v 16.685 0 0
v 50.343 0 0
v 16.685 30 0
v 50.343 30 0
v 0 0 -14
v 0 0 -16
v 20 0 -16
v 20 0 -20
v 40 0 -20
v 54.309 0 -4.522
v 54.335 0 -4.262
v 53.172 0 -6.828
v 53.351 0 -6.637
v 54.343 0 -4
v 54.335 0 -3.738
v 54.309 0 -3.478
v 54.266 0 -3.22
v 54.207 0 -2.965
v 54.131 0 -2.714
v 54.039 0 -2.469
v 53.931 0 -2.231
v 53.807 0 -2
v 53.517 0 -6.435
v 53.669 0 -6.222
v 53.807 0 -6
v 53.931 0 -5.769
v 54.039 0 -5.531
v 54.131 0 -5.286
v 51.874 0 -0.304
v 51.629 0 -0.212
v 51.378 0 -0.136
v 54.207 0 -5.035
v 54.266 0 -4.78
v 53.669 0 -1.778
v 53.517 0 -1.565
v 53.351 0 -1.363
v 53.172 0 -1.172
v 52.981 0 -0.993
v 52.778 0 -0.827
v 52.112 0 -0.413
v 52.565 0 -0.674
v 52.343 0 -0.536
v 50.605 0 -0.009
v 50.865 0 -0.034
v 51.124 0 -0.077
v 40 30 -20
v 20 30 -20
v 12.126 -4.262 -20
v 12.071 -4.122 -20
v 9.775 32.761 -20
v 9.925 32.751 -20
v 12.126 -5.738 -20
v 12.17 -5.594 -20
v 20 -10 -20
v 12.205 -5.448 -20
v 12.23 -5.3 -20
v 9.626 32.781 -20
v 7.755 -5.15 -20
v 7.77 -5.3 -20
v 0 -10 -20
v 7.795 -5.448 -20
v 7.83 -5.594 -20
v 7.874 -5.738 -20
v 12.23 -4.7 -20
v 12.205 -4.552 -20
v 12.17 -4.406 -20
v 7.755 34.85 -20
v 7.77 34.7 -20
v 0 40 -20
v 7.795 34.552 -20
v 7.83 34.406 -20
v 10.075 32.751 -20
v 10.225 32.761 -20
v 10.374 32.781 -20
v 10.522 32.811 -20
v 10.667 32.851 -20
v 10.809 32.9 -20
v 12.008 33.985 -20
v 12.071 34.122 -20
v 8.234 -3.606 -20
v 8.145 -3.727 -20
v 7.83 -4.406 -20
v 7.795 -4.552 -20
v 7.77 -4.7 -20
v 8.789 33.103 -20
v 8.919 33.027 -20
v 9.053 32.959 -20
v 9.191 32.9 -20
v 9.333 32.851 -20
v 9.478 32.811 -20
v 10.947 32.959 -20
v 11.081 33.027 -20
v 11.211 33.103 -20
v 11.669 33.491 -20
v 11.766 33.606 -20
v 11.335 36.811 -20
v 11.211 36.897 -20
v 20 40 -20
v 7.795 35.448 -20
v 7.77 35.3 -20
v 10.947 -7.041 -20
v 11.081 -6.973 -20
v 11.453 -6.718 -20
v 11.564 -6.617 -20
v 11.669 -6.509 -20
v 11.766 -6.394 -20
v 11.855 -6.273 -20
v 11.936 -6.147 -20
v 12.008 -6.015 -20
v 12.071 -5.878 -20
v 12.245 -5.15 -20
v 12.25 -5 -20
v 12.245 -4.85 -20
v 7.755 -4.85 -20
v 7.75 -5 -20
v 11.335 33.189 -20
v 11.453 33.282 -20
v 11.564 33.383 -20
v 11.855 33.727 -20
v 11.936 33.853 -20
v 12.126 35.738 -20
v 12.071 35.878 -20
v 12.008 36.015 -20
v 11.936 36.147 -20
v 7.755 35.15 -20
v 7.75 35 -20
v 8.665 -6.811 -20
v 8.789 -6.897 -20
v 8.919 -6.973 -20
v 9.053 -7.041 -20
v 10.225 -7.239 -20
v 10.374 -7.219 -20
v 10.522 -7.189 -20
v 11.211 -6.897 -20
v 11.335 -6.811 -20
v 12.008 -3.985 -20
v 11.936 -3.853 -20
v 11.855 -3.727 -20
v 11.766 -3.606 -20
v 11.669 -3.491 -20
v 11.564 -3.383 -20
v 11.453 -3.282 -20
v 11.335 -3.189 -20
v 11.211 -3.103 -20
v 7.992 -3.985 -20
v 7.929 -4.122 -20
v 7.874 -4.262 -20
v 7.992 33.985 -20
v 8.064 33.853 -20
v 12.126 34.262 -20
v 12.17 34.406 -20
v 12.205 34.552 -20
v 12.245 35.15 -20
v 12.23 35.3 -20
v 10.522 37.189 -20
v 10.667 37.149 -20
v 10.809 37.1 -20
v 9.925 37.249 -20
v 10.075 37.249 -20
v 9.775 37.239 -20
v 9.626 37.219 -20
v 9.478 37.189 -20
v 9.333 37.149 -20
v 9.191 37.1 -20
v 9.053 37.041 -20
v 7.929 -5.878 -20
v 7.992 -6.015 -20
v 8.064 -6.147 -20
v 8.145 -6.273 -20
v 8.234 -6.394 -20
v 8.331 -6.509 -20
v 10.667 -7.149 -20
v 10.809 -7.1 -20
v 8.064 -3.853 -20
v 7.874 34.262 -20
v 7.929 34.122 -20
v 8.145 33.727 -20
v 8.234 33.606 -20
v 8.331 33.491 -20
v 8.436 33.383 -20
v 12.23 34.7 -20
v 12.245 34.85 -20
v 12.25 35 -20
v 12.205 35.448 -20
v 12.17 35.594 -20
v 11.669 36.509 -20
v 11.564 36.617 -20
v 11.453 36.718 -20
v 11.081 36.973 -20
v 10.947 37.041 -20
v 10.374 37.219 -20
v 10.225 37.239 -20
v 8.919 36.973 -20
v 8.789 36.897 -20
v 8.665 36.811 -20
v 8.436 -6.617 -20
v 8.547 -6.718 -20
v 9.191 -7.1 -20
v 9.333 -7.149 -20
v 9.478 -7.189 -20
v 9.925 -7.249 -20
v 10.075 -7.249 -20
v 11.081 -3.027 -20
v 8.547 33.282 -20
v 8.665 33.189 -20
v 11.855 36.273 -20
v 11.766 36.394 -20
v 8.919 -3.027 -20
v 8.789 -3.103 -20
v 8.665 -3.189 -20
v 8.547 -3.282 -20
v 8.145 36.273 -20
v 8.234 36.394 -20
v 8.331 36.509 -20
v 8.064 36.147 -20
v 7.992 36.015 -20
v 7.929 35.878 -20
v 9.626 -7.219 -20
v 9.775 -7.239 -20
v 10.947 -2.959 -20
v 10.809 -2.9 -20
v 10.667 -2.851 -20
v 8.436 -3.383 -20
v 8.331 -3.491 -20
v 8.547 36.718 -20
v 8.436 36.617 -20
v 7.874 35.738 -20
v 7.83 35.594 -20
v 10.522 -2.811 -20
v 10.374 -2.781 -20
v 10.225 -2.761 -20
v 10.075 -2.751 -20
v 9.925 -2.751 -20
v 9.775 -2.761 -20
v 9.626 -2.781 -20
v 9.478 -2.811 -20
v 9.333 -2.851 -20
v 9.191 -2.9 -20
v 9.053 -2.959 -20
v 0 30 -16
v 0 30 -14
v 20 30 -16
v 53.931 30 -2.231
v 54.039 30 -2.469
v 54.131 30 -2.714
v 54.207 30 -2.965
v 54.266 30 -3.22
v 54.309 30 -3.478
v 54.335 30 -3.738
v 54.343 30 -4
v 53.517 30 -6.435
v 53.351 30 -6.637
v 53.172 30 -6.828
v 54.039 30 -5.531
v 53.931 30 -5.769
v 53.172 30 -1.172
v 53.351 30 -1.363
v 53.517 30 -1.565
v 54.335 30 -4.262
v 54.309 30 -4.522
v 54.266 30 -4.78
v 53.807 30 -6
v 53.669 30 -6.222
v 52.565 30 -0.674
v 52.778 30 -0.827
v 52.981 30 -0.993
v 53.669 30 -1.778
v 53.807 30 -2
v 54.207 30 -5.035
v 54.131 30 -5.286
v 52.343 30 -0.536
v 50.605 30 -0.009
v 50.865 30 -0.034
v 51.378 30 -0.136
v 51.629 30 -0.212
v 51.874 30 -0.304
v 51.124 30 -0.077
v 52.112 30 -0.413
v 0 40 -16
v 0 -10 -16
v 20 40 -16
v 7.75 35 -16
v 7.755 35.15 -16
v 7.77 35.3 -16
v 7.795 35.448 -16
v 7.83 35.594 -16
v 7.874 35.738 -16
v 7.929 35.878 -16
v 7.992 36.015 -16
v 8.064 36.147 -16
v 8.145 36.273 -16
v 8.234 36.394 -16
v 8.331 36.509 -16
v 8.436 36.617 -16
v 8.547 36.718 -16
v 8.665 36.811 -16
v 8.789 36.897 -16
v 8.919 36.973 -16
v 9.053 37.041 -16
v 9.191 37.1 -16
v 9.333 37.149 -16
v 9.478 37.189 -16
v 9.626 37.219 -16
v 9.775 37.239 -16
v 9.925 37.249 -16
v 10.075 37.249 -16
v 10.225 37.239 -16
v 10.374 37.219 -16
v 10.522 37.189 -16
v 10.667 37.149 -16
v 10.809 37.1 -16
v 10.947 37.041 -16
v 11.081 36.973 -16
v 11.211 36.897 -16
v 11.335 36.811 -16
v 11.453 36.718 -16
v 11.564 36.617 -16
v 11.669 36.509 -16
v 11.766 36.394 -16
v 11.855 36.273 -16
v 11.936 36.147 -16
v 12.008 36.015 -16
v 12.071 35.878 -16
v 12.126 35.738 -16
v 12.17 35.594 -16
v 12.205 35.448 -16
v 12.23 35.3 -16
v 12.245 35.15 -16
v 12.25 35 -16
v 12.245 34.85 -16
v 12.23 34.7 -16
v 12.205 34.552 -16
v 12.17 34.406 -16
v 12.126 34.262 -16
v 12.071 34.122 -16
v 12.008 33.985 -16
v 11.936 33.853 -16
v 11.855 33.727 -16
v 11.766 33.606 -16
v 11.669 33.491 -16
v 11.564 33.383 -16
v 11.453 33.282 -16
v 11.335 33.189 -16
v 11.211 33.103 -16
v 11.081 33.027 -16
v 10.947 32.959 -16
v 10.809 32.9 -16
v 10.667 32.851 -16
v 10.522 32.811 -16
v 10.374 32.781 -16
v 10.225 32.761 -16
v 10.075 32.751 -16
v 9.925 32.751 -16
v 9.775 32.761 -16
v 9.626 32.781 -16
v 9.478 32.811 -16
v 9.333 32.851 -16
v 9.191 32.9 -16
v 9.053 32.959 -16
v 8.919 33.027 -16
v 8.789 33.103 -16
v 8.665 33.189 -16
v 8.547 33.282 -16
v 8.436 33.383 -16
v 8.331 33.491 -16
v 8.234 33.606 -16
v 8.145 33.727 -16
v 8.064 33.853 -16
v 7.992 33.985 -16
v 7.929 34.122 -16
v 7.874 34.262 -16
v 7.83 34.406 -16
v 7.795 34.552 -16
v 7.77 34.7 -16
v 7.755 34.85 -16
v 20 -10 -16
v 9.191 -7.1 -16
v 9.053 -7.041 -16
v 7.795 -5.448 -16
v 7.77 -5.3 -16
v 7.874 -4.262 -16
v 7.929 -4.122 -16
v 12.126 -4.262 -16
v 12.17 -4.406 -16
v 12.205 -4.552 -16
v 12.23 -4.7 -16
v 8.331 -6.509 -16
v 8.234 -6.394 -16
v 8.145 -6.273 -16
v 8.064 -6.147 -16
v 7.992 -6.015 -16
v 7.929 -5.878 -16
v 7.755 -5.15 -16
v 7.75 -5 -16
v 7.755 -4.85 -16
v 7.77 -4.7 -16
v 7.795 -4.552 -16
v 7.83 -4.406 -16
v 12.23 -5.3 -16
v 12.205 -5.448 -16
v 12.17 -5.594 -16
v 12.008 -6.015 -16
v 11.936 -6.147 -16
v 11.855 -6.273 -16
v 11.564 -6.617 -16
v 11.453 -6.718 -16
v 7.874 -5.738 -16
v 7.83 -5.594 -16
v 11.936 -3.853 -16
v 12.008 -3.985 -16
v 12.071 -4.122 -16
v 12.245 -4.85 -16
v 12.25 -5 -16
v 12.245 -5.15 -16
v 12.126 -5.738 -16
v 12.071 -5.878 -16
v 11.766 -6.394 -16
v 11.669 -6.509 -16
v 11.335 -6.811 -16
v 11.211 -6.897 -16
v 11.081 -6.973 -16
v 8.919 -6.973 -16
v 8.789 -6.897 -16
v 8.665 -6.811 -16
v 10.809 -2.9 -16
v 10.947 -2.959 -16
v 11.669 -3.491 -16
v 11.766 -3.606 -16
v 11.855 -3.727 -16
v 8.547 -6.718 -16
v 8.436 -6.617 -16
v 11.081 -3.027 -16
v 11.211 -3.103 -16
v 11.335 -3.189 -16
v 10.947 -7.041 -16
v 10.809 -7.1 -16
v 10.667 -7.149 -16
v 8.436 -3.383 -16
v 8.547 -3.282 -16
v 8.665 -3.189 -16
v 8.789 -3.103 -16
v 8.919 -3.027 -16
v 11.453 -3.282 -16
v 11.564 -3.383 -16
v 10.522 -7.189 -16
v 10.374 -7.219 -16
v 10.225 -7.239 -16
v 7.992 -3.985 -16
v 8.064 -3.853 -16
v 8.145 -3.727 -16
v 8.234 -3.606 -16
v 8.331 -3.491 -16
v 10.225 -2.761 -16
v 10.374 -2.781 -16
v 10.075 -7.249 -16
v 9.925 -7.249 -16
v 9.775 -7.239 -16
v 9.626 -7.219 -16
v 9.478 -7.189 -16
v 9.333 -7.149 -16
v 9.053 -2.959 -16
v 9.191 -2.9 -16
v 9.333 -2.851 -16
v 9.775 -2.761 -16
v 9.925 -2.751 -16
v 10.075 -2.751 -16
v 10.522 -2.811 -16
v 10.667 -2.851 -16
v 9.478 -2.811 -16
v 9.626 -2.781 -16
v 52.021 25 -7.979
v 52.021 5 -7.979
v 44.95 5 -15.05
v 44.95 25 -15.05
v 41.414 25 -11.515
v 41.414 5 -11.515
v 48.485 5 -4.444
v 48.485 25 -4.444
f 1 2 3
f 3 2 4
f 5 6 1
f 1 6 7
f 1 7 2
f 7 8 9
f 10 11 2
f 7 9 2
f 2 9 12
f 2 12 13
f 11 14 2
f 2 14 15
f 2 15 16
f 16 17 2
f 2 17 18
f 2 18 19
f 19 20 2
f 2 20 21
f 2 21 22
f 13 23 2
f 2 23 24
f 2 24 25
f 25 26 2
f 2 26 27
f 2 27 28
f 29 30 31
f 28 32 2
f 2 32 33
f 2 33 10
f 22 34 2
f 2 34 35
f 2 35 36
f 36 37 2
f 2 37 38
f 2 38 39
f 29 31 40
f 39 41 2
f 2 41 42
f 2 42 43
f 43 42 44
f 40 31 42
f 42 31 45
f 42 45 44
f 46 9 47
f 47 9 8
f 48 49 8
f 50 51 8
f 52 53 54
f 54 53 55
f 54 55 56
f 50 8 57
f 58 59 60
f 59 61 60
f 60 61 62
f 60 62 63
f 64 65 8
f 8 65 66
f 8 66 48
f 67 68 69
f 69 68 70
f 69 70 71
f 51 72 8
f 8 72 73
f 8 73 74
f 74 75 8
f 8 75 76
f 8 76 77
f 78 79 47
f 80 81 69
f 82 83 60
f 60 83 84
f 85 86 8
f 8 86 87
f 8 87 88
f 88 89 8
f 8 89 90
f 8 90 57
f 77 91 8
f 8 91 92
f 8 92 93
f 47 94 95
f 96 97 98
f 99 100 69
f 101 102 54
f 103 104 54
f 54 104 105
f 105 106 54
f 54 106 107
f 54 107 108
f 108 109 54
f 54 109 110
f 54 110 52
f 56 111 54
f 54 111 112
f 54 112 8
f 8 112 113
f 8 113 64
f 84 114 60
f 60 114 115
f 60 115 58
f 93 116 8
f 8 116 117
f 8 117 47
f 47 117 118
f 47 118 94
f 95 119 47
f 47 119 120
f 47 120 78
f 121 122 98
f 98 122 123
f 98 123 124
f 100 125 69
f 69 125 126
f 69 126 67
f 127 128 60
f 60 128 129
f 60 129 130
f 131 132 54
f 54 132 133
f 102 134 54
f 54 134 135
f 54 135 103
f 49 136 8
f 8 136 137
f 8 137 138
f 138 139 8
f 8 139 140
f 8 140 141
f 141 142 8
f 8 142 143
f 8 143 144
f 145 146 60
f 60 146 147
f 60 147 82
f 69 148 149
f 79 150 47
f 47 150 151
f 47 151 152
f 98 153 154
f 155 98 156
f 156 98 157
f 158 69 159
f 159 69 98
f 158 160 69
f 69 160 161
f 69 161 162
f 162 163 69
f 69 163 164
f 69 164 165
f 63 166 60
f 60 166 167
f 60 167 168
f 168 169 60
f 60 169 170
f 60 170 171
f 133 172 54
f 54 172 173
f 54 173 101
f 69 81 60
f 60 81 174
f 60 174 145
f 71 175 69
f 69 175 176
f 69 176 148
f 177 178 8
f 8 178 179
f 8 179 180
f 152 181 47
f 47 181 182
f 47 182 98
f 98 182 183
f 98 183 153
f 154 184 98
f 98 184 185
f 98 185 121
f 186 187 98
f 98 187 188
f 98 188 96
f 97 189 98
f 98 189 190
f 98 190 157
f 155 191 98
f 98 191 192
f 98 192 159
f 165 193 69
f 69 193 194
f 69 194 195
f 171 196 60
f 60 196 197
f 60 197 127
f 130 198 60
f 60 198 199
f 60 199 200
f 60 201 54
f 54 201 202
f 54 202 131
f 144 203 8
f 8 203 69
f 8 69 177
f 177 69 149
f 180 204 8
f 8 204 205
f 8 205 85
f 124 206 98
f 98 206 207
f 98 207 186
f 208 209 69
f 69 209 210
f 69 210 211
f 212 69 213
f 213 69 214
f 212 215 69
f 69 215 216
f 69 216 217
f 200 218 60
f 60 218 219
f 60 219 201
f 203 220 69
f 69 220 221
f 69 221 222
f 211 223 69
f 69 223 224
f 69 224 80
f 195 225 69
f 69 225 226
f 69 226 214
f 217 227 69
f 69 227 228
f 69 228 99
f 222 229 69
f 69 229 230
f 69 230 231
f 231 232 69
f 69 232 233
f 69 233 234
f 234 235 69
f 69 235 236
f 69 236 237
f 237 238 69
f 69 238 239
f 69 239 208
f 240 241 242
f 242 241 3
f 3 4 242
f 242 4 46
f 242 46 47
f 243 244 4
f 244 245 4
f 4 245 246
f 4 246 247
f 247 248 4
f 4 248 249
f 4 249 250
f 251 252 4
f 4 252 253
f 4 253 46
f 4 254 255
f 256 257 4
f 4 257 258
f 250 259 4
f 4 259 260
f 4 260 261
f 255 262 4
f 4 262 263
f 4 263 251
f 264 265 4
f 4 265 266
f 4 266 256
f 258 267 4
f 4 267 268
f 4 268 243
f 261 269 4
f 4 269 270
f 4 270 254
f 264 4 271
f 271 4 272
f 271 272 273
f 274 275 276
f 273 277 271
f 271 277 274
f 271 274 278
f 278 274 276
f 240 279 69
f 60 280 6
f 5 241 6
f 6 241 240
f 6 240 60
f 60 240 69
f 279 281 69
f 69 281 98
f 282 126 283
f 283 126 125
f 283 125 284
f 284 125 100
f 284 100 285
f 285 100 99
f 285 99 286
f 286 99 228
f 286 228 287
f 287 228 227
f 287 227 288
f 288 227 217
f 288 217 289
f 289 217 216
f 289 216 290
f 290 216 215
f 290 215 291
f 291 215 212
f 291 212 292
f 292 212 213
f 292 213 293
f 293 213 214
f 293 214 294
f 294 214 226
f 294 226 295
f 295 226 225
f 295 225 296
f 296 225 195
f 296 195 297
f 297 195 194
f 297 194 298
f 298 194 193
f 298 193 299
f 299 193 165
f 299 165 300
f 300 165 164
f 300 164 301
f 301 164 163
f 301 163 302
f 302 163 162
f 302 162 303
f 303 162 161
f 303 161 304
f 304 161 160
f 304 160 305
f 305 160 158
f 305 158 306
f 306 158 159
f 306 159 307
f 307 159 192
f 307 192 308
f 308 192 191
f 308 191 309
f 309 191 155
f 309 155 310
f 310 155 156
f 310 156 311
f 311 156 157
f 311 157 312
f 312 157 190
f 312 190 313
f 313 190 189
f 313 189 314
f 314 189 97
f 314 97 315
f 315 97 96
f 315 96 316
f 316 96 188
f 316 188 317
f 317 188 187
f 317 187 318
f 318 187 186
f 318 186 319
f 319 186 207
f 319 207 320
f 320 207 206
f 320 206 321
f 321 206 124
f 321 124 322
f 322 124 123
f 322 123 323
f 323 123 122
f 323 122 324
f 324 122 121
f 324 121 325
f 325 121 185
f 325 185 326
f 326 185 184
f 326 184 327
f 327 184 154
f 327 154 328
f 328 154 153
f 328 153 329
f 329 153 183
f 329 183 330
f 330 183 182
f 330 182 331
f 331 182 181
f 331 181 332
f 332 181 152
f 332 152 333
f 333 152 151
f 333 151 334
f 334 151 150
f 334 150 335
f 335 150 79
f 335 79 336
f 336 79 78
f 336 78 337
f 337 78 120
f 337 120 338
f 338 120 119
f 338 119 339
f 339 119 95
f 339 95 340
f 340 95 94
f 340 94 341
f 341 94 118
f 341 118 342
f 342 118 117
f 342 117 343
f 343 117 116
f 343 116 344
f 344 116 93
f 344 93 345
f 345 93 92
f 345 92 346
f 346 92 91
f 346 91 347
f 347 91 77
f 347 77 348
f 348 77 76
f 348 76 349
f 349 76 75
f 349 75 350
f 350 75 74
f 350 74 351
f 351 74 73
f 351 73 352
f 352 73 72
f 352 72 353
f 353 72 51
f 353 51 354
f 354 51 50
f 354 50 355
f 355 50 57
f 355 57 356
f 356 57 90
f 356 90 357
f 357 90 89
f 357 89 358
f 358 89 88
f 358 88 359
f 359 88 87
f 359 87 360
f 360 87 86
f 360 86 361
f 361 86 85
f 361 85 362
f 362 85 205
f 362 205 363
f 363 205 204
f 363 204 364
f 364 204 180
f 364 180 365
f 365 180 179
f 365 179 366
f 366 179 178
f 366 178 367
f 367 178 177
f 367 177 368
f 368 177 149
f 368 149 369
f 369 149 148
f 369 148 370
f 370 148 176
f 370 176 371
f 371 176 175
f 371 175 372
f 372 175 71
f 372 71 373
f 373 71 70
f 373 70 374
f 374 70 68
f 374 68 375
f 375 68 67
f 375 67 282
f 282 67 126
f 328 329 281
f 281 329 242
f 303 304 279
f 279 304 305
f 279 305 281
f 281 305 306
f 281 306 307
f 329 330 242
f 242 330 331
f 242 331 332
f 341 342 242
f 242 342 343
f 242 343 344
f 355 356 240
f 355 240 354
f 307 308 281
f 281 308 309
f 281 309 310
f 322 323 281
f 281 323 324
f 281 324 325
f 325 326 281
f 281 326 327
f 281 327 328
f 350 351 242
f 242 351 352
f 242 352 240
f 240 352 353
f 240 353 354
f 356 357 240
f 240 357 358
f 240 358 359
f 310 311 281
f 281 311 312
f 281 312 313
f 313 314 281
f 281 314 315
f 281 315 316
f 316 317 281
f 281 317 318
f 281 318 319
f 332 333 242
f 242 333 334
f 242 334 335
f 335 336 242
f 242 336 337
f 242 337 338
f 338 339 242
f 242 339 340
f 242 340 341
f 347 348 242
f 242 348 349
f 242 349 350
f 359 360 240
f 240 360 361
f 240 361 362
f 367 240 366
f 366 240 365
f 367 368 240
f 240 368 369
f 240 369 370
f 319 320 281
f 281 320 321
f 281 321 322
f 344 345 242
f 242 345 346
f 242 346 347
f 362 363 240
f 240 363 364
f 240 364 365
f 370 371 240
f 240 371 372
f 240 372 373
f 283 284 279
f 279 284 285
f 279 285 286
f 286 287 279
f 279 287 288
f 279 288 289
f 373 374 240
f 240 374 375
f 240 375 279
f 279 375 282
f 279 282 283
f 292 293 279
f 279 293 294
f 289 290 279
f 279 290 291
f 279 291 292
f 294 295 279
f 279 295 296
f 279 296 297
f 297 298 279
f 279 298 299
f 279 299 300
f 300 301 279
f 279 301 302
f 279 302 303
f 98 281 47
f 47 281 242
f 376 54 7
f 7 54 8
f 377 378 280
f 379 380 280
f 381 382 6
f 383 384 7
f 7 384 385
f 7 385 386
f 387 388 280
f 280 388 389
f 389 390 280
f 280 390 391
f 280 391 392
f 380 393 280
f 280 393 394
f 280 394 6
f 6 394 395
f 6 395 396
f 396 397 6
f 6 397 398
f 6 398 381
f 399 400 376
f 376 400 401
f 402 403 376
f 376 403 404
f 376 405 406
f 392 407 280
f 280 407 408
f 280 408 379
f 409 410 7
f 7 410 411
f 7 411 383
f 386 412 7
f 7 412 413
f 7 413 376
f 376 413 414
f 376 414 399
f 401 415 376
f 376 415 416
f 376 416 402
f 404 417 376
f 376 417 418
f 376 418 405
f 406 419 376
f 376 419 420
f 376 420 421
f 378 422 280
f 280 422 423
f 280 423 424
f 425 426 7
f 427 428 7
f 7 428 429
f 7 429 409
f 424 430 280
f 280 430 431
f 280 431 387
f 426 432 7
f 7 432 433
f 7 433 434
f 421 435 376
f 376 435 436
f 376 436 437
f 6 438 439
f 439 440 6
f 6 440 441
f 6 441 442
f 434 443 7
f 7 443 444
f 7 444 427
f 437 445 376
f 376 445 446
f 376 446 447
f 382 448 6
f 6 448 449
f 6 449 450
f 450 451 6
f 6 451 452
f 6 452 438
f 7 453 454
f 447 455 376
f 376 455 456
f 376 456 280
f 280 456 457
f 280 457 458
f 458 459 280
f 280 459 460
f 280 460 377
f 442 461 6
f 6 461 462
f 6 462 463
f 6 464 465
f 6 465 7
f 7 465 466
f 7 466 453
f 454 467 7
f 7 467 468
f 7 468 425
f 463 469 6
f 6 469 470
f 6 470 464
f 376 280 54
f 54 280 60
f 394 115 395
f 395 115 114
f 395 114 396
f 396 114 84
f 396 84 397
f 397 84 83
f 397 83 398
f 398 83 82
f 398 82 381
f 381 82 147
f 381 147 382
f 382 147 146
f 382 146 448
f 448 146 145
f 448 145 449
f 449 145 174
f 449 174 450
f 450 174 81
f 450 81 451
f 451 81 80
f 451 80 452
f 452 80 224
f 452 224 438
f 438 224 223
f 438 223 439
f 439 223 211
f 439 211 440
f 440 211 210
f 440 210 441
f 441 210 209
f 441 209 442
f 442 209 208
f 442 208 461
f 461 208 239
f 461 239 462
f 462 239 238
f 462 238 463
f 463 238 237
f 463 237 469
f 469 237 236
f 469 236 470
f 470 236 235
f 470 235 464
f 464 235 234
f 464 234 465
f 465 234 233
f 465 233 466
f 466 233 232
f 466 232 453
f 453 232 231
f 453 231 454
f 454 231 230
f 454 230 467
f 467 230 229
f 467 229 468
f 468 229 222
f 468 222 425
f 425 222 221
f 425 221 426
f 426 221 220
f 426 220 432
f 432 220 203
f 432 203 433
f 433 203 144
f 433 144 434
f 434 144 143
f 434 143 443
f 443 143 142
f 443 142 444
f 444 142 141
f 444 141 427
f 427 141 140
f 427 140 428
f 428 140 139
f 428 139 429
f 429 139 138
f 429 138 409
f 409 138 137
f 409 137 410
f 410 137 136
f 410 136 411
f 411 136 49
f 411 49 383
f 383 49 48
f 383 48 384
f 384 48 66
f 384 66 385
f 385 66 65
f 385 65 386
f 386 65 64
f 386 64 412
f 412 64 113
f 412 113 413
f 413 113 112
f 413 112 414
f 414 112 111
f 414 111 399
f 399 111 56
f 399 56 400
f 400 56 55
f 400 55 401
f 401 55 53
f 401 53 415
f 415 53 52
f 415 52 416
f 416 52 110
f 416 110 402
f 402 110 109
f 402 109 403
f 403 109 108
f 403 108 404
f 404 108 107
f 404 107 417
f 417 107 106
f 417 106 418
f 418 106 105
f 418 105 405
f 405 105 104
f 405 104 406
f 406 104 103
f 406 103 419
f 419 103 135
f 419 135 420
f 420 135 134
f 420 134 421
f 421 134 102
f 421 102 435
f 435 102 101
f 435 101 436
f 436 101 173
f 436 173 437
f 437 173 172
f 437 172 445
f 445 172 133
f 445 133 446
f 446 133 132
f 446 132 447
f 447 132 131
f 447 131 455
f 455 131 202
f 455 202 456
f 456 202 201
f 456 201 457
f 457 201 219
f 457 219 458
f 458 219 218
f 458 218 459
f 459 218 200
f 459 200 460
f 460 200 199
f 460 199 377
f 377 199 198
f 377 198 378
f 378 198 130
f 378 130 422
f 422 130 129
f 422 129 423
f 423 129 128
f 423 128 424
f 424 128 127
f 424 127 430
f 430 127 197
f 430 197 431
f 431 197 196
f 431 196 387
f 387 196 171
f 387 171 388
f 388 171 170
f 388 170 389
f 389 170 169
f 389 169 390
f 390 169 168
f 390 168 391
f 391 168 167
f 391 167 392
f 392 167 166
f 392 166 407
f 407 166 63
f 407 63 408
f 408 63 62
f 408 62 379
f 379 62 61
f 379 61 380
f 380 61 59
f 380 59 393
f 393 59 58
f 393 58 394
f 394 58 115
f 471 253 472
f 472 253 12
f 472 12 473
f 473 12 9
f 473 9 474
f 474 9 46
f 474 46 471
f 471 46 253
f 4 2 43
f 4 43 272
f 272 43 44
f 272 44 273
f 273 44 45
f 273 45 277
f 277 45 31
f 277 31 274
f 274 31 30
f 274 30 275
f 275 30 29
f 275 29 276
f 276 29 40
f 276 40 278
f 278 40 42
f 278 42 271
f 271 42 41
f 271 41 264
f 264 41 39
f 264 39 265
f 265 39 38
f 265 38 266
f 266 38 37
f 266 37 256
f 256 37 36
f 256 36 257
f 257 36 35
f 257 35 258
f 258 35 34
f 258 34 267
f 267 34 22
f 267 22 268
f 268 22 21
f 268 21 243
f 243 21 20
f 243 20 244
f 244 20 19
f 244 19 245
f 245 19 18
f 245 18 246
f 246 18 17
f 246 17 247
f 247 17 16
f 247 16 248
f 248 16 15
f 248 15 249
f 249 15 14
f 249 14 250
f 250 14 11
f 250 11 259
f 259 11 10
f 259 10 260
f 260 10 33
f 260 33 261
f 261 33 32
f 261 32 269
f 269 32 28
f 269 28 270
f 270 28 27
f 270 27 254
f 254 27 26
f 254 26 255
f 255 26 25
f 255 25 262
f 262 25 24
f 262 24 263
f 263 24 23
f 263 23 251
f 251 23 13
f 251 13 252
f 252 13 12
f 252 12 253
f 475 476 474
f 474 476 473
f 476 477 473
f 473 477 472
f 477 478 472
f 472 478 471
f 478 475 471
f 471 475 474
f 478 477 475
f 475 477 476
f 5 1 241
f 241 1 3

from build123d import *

# Parameters (mm, degrees)
SKETCH1_W           = 20
SKETCH1_H           = 30
BOSS_EXTRUDE1_DEPTH = 60
SKETCH2_W           = 20
SKETCH2_H           = 50
SKETCH2_R           = 2.25
BOSS_EXTRUDE2_DEPTH = 4
CUT_EXTRUDE1_DEPTH  = 41
FILLET1_R           = 4
SKETCH4_W           = 10
SKETCH4_H           = 20
CUT_EXTRUDE2_DEPTH  = 5
CHAMFER1_SIZE       = 14
CHAMFER1_SIZE2      = 16.684550296


with BuildPart() as part:
    # Sketch1 → Boss-Extrude1 (new body)
    with BuildSketch(Plane(origin=(0, 0, 0), x_dir=(0, 0, -1), z_dir=(1, 0, 0))):
        with Locations((10, 15)):
            Rectangle(SKETCH1_W, SKETCH1_H)
    extrude(amount=BOSS_EXTRUDE1_DEPTH)

    # Sketch2 → Boss-Extrude2 (add)
    with BuildSketch(Plane(origin=(0, 0, -20), x_dir=(-1, 0, 0), z_dir=(0, 0, -1))):
        with Locations((-10, 15)):
            Rectangle(SKETCH2_W, SKETCH2_H)
        with Locations((-10, 35)):
            Circle(SKETCH2_R, mode=Mode.SUBTRACT)
        with Locations((-10, -5)):
            Circle(SKETCH2_R, mode=Mode.SUBTRACT)
    extrude(amount=-BOSS_EXTRUDE2_DEPTH)

    # Sketch3 → Cut-Extrude1 (cut, through all)
    with BuildSketch(Plane(origin=(0, 30, 0), x_dir=(1, 0, 0), z_dir=(0, 1, 0))):
        Polygon((60, 20), (40, 20), (60, 0), align=None)
    extrude(amount=-CUT_EXTRUDE1_DEPTH, mode=Mode.SUBTRACT)

    # Fillet1
    fillet1_edges = [part.edges().sort_by_distance(p)[0] for p in [
        (60, 15, 0),
    ]]
    fillet(fillet1_edges, radius=FILLET1_R)

    # Sketch4 → Cut-Extrude2 (cut)
    with BuildSketch(Plane(origin=(30, 0, -30), x_dir=(-0.707106781, 0, -0.707106781), z_dir=(0.707106781, 0, -0.707106781))):
        with Locations((-26.142135624, 15)):
            Rectangle(SKETCH4_W, SKETCH4_H)
    extrude(amount=-CUT_EXTRUDE2_DEPTH, mode=Mode.SUBTRACT)

    # Chamfer1
    chamfer1_edges = [part.edges().sort_by_distance(p)[0] for p in [
        (0, 15, 0),
    ]]
    chamfer1_side = [part.faces().sort_by_distance(p)[0] for p in [
        (0, 15, -10.941176471),
    ]]
    chamfer(chamfer1_edges, length=CHAMFER1_SIZE, length2=CHAMFER1_SIZE2, reference=chamfer1_side[0])


solid = part.part
